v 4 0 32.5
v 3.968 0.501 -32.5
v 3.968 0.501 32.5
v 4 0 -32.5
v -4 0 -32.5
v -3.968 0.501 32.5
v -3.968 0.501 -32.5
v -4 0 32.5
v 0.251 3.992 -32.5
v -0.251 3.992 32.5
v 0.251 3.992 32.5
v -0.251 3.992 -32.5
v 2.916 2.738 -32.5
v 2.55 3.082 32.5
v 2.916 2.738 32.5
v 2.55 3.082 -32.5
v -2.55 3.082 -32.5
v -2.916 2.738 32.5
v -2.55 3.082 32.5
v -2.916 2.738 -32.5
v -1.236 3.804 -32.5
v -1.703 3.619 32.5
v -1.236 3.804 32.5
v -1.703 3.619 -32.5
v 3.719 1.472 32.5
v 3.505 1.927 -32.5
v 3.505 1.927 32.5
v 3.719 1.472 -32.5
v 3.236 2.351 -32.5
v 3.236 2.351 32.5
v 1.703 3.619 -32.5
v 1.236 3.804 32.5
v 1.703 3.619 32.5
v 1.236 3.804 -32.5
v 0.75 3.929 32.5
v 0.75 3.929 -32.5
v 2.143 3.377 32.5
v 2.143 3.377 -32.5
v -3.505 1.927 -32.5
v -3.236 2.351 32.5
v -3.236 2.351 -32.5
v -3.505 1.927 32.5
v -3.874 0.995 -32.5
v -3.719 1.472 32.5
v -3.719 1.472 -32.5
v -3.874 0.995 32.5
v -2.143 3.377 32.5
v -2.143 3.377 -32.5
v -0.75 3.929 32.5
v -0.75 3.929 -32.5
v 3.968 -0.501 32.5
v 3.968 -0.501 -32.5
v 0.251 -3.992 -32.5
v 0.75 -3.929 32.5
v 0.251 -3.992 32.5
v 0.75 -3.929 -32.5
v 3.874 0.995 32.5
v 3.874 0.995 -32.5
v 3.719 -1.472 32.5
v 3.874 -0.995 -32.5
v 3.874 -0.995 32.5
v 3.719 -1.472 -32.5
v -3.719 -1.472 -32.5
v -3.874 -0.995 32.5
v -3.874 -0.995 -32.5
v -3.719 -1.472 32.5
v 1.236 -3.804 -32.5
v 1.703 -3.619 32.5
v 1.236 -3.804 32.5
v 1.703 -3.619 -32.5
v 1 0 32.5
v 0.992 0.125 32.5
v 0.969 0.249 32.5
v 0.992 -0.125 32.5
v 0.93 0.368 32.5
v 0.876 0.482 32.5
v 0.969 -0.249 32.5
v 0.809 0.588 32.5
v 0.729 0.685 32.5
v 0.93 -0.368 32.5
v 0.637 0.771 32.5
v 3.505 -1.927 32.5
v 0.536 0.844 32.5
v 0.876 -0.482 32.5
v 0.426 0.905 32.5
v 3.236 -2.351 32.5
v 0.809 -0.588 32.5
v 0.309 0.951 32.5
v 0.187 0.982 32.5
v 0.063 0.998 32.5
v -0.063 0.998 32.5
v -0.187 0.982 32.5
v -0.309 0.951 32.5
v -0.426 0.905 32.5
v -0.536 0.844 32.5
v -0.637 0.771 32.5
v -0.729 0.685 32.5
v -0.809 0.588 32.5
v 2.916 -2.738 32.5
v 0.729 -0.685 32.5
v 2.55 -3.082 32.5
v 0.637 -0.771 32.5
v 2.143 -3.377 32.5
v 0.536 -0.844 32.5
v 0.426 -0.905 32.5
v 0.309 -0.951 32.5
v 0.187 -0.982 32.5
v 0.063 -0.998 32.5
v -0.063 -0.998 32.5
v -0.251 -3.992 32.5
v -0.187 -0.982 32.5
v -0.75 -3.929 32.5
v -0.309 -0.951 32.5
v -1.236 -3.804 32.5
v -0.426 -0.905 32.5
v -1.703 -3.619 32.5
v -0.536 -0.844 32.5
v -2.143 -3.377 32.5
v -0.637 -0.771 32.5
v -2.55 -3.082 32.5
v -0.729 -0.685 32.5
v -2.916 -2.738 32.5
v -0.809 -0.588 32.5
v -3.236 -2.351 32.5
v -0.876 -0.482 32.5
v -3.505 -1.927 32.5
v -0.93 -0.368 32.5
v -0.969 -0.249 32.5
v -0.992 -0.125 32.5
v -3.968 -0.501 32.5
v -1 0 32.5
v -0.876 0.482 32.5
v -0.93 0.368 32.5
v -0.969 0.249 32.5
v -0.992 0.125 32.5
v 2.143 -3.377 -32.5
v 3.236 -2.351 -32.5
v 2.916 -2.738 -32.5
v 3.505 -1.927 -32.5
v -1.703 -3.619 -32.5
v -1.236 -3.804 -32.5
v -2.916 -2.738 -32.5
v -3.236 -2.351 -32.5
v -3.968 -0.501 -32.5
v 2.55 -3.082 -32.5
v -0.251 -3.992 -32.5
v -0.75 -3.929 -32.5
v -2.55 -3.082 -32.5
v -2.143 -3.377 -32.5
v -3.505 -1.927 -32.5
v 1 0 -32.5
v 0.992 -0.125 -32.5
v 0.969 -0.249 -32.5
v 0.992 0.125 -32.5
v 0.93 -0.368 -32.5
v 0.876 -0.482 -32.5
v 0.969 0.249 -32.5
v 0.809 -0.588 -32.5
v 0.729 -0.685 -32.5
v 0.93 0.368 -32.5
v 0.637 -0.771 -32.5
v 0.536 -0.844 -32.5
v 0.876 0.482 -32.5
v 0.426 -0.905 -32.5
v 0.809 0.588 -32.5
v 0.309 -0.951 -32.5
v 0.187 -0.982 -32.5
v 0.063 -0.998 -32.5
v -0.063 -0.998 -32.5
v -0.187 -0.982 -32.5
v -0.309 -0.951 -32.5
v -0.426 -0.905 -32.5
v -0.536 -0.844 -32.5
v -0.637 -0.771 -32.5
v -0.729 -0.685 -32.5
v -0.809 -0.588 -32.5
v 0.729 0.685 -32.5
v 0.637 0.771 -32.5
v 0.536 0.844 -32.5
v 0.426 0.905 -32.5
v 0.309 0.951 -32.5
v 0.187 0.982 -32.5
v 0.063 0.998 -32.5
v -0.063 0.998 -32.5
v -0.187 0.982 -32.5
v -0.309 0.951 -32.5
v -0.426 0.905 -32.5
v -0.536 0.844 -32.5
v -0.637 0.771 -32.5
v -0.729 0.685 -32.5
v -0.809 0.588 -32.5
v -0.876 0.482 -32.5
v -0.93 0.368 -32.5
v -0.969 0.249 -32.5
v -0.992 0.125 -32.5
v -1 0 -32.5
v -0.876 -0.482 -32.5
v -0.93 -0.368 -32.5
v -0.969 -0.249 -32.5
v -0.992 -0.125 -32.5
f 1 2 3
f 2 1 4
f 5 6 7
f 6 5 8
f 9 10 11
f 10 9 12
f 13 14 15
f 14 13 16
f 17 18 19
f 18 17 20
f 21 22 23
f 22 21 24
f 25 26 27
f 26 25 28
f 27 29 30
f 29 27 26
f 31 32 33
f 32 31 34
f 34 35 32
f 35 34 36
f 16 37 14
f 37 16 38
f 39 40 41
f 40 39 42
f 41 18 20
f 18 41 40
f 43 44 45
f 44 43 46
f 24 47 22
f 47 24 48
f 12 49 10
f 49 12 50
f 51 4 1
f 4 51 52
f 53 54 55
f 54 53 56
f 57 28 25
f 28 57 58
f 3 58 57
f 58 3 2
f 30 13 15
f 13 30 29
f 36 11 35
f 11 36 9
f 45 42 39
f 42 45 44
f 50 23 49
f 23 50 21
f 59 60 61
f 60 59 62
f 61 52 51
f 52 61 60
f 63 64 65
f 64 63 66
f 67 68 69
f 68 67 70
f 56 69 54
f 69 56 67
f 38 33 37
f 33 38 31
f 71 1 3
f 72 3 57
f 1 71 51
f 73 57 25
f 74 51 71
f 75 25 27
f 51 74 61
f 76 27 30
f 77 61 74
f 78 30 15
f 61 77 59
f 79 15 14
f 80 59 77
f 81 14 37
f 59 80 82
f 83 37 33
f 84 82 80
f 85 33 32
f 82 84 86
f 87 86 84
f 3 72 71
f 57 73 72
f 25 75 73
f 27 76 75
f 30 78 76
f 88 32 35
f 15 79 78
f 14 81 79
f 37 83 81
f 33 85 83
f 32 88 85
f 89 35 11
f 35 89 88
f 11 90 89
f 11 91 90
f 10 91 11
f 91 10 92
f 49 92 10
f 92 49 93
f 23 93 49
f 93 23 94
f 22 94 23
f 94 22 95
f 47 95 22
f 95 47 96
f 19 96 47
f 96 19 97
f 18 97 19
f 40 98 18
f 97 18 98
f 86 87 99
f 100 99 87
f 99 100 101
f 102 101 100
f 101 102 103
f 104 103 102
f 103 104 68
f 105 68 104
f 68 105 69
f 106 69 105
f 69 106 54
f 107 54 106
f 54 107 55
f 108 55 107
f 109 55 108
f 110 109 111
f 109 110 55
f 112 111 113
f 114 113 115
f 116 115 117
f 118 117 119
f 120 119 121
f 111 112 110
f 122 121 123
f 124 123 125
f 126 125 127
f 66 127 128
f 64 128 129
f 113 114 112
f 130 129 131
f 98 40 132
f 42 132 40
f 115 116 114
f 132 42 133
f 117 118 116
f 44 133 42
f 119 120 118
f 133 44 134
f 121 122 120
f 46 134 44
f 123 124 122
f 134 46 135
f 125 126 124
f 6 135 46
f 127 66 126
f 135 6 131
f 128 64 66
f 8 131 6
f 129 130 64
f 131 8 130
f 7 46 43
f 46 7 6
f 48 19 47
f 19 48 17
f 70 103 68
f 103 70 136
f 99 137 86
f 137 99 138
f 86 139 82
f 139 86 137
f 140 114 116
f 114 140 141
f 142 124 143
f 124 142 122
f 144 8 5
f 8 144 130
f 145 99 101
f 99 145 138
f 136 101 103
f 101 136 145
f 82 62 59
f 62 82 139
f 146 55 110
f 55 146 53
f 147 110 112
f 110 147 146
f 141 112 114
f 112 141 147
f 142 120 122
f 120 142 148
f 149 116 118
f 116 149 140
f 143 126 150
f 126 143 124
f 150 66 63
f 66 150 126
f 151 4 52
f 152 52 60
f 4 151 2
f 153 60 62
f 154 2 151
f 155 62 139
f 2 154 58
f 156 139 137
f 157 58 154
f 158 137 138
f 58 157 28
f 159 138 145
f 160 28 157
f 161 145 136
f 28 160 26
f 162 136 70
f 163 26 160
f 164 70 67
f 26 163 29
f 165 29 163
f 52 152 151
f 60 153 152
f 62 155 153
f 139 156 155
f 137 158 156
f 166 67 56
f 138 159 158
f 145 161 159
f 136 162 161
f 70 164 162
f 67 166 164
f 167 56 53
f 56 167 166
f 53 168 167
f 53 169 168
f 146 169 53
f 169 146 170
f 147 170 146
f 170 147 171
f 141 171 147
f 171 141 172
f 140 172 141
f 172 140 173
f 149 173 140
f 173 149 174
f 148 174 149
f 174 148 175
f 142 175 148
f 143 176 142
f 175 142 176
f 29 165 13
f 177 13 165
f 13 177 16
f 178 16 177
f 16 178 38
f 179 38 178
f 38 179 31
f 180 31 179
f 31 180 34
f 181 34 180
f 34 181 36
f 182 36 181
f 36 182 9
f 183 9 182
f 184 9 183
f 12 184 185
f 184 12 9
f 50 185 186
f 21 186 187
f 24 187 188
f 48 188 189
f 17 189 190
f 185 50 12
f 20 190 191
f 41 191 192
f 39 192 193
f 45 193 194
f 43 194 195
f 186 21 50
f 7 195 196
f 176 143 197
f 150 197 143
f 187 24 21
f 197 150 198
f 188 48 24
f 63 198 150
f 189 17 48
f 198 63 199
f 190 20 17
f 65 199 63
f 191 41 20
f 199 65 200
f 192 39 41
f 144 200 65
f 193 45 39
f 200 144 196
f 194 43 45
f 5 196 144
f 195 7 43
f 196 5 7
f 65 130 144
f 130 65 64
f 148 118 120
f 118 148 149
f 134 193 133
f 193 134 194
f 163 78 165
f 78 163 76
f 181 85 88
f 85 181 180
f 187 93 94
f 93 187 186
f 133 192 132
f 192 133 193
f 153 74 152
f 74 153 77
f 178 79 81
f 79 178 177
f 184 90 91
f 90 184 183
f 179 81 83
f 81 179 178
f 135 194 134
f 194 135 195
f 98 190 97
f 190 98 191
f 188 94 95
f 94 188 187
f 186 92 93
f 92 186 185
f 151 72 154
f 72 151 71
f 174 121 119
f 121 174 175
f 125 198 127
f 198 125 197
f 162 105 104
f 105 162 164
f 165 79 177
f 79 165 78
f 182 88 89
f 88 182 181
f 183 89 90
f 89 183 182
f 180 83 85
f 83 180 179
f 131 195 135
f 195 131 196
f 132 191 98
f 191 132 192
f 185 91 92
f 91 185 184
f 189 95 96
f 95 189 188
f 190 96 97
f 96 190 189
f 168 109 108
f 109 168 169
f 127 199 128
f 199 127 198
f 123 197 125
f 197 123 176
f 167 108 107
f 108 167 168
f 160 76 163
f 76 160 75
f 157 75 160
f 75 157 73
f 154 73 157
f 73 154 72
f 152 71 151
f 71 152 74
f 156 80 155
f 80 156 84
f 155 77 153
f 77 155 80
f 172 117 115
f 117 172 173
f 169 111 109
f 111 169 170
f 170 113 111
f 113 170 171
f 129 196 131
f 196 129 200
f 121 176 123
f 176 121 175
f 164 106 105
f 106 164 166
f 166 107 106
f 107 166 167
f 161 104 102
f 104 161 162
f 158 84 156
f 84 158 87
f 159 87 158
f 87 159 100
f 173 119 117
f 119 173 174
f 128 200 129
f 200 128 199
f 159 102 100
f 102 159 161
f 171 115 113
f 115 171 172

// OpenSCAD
$fn = 50;


difference() {
	union() {
		translate(v = [0, 0, -32.5000000000]) {
			cylinder(h = 65, r = 4.0000000000);
		}
	}
	union() {
		translate(v = [0, 0, -100.0000000000]) {
			cylinder(h = 200, r = 1.0000000000);
		}
	}
}
